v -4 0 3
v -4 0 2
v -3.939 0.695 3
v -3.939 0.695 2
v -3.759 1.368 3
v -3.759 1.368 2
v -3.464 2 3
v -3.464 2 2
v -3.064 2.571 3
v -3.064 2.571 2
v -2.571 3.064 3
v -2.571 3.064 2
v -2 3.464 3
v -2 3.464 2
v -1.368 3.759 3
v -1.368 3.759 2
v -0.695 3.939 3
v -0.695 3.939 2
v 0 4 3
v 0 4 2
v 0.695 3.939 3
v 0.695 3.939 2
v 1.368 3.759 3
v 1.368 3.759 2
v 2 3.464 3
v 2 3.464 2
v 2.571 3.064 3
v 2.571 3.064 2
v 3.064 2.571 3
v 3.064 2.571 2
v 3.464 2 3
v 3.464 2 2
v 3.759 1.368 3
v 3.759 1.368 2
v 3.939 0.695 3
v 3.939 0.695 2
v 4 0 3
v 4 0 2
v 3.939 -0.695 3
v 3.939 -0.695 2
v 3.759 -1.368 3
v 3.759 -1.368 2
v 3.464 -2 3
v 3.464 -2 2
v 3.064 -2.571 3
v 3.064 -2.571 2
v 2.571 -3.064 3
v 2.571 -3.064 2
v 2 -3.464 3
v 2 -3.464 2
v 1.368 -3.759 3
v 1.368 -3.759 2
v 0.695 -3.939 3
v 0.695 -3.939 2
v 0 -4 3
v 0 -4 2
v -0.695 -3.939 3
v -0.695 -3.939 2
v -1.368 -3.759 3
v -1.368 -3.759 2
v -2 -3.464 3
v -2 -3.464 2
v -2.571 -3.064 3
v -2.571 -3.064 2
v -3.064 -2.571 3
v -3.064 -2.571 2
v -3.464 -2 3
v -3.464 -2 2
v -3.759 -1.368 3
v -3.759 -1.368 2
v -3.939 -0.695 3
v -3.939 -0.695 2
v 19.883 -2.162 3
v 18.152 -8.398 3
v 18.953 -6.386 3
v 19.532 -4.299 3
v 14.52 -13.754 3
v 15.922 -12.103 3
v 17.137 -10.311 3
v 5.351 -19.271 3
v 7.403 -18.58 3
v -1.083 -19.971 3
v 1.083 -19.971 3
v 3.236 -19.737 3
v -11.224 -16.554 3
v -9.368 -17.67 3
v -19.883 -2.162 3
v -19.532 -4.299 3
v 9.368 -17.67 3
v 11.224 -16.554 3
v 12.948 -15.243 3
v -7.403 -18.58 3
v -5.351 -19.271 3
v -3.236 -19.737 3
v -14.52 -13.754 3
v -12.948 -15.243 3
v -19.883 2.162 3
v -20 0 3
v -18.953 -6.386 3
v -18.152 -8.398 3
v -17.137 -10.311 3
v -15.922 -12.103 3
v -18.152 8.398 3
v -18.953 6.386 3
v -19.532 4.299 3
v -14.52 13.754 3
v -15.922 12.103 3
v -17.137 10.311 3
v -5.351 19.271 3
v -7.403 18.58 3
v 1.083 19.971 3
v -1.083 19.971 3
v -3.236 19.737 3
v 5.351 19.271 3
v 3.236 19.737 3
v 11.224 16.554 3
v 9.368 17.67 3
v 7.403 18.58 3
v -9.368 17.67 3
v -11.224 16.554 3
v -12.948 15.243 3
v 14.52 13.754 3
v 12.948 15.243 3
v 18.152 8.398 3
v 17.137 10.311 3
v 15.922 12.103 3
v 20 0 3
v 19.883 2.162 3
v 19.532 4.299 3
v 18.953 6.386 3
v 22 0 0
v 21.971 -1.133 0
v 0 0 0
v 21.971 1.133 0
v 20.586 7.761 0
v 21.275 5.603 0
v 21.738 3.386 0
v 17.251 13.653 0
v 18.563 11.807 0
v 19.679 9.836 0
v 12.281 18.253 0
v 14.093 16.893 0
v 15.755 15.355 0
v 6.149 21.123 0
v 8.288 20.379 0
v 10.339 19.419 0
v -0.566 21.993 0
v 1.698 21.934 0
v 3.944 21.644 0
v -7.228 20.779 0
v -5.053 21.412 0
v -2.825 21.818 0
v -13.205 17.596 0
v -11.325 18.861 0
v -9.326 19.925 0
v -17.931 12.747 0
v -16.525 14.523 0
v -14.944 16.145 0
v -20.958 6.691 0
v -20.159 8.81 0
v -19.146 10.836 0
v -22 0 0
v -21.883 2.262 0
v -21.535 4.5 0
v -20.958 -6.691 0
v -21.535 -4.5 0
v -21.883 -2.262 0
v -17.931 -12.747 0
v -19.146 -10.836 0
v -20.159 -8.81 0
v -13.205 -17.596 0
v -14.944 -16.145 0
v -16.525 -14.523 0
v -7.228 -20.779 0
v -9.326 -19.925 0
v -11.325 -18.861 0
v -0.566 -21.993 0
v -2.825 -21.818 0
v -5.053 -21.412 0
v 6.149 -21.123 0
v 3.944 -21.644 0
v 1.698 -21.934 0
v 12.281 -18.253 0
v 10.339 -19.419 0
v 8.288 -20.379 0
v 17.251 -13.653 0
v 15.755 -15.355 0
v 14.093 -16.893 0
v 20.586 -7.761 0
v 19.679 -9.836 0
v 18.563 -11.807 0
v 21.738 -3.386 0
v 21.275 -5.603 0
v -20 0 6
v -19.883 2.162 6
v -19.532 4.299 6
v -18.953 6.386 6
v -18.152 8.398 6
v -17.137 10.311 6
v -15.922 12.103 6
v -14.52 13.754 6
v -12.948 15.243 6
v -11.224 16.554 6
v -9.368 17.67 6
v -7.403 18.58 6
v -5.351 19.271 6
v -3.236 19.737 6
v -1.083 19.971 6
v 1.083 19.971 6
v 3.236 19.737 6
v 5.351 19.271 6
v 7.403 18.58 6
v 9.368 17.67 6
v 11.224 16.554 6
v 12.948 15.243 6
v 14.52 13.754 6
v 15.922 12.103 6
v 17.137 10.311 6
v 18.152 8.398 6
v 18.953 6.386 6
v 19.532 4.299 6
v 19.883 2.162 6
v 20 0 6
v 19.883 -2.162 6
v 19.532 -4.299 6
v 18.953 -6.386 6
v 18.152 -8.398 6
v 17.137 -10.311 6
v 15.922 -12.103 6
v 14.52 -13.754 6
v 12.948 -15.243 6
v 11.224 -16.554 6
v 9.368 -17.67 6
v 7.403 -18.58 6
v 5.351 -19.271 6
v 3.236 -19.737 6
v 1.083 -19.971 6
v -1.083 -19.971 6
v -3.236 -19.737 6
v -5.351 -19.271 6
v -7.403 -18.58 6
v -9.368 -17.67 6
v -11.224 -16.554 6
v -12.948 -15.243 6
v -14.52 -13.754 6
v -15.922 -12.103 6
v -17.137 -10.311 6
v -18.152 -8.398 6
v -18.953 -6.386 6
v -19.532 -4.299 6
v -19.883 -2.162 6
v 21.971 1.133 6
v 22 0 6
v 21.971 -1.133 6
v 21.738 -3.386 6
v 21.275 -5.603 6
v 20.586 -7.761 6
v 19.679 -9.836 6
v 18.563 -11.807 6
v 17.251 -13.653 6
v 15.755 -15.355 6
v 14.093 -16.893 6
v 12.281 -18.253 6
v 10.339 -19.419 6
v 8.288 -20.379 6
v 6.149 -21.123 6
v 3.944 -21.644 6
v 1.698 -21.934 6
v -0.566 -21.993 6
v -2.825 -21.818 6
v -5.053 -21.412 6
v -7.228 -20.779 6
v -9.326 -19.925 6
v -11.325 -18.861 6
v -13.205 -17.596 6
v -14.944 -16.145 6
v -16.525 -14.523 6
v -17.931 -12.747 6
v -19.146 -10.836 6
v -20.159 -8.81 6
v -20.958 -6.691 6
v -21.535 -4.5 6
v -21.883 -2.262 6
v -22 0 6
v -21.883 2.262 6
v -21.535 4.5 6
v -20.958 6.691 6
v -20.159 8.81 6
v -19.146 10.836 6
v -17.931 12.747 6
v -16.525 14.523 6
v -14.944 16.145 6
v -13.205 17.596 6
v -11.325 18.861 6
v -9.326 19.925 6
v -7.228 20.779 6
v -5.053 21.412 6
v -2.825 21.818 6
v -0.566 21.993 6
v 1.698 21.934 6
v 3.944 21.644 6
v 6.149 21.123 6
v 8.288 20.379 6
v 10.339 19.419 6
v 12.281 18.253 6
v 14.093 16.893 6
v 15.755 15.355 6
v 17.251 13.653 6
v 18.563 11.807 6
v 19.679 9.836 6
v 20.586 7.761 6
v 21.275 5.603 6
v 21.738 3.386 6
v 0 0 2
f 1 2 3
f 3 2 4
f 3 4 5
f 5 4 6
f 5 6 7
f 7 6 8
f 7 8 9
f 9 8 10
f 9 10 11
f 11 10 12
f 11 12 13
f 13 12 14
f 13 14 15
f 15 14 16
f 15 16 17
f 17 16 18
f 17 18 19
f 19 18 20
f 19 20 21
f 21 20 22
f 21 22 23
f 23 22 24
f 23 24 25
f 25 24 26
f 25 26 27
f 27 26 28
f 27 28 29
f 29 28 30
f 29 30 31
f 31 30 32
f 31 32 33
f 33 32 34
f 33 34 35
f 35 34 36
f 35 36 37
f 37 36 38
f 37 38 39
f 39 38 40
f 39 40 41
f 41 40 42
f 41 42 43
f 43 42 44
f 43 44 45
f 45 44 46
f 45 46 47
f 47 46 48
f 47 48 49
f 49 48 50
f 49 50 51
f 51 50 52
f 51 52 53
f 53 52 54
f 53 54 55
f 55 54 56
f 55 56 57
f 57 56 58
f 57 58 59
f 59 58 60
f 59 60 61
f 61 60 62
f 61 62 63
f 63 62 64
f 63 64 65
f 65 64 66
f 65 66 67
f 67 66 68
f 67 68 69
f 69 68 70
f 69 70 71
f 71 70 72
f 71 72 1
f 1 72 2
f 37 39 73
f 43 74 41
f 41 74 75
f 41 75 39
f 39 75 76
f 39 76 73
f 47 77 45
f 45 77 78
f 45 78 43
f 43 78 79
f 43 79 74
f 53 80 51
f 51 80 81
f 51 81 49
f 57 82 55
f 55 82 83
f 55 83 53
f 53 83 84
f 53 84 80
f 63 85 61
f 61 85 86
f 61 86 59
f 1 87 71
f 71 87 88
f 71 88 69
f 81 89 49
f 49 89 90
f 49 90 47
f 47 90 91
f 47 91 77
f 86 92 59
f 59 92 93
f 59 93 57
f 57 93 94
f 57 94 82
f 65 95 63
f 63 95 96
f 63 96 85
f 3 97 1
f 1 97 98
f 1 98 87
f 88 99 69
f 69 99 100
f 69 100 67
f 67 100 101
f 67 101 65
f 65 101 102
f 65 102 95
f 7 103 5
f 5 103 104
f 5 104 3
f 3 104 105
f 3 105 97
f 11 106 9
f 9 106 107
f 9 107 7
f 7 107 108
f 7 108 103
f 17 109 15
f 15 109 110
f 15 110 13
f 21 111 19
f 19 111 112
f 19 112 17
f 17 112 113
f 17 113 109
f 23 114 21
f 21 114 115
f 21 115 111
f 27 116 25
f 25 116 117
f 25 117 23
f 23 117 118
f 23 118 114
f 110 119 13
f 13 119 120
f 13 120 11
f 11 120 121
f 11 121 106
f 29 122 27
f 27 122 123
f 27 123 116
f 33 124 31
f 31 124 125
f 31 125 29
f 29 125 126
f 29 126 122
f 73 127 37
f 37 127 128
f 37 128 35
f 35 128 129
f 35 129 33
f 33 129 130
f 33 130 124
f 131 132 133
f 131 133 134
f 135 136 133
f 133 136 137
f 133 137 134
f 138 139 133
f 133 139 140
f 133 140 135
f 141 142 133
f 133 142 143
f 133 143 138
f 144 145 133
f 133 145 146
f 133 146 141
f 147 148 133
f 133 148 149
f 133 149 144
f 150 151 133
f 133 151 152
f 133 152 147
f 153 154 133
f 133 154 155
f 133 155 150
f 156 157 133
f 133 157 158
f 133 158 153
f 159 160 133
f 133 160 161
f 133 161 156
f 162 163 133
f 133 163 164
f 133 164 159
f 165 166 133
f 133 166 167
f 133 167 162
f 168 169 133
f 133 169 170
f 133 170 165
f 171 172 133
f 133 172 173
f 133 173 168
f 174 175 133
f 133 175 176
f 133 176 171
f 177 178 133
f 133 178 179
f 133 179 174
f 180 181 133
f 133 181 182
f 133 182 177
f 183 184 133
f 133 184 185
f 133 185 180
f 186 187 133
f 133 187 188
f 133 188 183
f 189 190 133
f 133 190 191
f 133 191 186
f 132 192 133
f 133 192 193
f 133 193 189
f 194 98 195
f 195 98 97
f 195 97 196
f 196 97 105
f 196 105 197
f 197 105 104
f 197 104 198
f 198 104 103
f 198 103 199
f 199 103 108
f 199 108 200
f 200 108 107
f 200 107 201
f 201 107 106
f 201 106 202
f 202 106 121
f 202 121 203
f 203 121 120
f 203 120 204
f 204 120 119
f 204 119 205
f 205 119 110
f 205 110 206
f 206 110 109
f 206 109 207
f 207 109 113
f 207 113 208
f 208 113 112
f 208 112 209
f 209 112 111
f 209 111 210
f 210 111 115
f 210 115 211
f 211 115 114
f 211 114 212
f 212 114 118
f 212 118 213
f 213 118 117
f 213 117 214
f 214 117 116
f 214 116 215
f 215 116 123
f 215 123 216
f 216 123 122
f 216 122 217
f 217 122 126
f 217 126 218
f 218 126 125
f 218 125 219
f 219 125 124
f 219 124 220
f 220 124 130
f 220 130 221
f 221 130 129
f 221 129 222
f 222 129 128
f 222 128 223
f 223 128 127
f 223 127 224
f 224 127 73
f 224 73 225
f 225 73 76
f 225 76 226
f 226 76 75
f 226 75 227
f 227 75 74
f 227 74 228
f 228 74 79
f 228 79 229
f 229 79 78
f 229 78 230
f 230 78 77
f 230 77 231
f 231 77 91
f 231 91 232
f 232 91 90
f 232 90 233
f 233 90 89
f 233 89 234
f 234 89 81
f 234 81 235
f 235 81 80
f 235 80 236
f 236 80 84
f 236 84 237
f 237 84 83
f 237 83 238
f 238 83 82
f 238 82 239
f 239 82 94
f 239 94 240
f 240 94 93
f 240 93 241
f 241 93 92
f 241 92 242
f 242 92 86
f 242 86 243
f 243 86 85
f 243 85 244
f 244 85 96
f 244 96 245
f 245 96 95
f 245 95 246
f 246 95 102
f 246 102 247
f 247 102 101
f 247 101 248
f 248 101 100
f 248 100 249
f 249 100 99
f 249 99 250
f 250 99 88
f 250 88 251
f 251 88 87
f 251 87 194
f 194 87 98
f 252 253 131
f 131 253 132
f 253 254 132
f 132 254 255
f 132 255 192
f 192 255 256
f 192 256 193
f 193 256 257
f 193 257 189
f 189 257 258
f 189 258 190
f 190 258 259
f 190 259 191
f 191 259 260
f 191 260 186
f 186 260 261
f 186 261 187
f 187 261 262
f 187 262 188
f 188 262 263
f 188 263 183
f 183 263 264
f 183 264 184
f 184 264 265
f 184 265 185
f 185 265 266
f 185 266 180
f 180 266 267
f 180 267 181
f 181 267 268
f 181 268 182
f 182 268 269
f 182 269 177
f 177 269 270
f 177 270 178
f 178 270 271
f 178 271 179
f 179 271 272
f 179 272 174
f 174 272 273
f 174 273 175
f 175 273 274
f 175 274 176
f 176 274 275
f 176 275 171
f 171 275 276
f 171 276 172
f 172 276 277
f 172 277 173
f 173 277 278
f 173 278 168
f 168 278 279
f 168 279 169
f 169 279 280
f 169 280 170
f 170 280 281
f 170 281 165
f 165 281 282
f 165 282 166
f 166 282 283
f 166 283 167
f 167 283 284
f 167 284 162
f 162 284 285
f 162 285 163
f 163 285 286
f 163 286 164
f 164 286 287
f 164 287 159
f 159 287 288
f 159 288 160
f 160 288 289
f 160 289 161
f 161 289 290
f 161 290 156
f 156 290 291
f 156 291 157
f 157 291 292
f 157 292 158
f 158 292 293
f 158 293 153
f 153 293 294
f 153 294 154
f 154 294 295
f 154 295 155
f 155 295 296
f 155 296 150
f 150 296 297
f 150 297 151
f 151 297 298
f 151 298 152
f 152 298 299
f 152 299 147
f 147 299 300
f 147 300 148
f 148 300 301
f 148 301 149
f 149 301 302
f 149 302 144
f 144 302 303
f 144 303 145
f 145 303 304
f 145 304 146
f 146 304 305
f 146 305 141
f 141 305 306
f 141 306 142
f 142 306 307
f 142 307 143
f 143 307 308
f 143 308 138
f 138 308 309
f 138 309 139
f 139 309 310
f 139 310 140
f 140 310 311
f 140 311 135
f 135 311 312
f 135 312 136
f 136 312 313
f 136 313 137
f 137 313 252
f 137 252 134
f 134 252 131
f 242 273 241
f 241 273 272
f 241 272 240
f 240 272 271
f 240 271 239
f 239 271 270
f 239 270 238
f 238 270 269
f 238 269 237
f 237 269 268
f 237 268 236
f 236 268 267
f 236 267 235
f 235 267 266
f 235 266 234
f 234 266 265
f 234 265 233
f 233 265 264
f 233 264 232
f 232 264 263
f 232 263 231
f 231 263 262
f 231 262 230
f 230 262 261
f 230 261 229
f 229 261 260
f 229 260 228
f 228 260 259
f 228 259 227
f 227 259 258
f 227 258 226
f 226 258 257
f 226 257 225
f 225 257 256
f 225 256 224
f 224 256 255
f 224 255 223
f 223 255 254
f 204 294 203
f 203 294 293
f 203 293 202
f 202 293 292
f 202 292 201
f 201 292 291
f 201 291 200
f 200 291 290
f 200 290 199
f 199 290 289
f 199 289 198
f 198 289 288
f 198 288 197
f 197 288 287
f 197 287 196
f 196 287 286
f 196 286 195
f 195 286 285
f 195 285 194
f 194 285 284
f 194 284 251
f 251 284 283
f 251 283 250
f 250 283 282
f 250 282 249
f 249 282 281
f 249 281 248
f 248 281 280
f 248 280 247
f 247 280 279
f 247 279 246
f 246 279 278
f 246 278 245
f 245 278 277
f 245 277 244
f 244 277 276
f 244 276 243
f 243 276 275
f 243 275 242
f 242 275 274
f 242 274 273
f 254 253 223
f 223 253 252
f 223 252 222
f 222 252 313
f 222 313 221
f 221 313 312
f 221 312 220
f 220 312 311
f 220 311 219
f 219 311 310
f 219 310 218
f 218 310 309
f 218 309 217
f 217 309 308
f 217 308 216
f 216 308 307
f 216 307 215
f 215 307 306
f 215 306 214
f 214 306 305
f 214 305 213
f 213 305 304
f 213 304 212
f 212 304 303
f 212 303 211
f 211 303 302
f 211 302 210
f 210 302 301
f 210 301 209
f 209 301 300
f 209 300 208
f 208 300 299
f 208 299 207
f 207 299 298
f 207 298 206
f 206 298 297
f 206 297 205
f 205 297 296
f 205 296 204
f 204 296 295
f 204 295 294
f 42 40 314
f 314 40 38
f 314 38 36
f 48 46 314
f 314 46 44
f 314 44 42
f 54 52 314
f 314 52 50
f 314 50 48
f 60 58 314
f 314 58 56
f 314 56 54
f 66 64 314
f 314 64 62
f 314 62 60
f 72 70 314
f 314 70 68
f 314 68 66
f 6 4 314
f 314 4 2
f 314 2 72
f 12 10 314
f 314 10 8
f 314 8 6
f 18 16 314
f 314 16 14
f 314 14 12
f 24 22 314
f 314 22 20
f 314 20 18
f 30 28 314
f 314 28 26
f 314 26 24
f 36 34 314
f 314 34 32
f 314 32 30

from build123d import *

# Parameters (mm, degrees)
ESBO_O1_R                = 20
ESBO_O1_R_2              = 4
RESSALTO_EXTRUS_O3_DEPTH = 3
ESBO_O1_6_R              = 22
ESBO_O1_6_R_2            = 20
RESSALTO_EXTRUS_O4_DEPTH = 6
ESBO_O1_7_R              = 4
RESSALTO_EXTRUS_O5_DEPTH = 2


with BuildPart() as part:
    # Esboço1 → Ressalto-extrusão3 (new body)
    with BuildSketch(Plane.XY):
        Circle(ESBO_O1_R)
        Circle(ESBO_O1_R_2, mode=Mode.SUBTRACT)
    extrude(amount=RESSALTO_EXTRUS_O3_DEPTH)

    # Esboço1<6> → Ressalto-extrusão4 (add)
    with BuildSketch(Plane.XY):
        Circle(ESBO_O1_6_R)
        Circle(ESBO_O1_6_R_2, mode=Mode.SUBTRACT)
    extrude(amount=RESSALTO_EXTRUS_O4_DEPTH)

    # Esboço1<7> → Ressalto-extrusão5 (add)
    with BuildSketch(Plane.XY):
        Circle(ESBO_O1_7_R)
    extrude(amount=RESSALTO_EXTRUS_O5_DEPTH)


solid = part.part
